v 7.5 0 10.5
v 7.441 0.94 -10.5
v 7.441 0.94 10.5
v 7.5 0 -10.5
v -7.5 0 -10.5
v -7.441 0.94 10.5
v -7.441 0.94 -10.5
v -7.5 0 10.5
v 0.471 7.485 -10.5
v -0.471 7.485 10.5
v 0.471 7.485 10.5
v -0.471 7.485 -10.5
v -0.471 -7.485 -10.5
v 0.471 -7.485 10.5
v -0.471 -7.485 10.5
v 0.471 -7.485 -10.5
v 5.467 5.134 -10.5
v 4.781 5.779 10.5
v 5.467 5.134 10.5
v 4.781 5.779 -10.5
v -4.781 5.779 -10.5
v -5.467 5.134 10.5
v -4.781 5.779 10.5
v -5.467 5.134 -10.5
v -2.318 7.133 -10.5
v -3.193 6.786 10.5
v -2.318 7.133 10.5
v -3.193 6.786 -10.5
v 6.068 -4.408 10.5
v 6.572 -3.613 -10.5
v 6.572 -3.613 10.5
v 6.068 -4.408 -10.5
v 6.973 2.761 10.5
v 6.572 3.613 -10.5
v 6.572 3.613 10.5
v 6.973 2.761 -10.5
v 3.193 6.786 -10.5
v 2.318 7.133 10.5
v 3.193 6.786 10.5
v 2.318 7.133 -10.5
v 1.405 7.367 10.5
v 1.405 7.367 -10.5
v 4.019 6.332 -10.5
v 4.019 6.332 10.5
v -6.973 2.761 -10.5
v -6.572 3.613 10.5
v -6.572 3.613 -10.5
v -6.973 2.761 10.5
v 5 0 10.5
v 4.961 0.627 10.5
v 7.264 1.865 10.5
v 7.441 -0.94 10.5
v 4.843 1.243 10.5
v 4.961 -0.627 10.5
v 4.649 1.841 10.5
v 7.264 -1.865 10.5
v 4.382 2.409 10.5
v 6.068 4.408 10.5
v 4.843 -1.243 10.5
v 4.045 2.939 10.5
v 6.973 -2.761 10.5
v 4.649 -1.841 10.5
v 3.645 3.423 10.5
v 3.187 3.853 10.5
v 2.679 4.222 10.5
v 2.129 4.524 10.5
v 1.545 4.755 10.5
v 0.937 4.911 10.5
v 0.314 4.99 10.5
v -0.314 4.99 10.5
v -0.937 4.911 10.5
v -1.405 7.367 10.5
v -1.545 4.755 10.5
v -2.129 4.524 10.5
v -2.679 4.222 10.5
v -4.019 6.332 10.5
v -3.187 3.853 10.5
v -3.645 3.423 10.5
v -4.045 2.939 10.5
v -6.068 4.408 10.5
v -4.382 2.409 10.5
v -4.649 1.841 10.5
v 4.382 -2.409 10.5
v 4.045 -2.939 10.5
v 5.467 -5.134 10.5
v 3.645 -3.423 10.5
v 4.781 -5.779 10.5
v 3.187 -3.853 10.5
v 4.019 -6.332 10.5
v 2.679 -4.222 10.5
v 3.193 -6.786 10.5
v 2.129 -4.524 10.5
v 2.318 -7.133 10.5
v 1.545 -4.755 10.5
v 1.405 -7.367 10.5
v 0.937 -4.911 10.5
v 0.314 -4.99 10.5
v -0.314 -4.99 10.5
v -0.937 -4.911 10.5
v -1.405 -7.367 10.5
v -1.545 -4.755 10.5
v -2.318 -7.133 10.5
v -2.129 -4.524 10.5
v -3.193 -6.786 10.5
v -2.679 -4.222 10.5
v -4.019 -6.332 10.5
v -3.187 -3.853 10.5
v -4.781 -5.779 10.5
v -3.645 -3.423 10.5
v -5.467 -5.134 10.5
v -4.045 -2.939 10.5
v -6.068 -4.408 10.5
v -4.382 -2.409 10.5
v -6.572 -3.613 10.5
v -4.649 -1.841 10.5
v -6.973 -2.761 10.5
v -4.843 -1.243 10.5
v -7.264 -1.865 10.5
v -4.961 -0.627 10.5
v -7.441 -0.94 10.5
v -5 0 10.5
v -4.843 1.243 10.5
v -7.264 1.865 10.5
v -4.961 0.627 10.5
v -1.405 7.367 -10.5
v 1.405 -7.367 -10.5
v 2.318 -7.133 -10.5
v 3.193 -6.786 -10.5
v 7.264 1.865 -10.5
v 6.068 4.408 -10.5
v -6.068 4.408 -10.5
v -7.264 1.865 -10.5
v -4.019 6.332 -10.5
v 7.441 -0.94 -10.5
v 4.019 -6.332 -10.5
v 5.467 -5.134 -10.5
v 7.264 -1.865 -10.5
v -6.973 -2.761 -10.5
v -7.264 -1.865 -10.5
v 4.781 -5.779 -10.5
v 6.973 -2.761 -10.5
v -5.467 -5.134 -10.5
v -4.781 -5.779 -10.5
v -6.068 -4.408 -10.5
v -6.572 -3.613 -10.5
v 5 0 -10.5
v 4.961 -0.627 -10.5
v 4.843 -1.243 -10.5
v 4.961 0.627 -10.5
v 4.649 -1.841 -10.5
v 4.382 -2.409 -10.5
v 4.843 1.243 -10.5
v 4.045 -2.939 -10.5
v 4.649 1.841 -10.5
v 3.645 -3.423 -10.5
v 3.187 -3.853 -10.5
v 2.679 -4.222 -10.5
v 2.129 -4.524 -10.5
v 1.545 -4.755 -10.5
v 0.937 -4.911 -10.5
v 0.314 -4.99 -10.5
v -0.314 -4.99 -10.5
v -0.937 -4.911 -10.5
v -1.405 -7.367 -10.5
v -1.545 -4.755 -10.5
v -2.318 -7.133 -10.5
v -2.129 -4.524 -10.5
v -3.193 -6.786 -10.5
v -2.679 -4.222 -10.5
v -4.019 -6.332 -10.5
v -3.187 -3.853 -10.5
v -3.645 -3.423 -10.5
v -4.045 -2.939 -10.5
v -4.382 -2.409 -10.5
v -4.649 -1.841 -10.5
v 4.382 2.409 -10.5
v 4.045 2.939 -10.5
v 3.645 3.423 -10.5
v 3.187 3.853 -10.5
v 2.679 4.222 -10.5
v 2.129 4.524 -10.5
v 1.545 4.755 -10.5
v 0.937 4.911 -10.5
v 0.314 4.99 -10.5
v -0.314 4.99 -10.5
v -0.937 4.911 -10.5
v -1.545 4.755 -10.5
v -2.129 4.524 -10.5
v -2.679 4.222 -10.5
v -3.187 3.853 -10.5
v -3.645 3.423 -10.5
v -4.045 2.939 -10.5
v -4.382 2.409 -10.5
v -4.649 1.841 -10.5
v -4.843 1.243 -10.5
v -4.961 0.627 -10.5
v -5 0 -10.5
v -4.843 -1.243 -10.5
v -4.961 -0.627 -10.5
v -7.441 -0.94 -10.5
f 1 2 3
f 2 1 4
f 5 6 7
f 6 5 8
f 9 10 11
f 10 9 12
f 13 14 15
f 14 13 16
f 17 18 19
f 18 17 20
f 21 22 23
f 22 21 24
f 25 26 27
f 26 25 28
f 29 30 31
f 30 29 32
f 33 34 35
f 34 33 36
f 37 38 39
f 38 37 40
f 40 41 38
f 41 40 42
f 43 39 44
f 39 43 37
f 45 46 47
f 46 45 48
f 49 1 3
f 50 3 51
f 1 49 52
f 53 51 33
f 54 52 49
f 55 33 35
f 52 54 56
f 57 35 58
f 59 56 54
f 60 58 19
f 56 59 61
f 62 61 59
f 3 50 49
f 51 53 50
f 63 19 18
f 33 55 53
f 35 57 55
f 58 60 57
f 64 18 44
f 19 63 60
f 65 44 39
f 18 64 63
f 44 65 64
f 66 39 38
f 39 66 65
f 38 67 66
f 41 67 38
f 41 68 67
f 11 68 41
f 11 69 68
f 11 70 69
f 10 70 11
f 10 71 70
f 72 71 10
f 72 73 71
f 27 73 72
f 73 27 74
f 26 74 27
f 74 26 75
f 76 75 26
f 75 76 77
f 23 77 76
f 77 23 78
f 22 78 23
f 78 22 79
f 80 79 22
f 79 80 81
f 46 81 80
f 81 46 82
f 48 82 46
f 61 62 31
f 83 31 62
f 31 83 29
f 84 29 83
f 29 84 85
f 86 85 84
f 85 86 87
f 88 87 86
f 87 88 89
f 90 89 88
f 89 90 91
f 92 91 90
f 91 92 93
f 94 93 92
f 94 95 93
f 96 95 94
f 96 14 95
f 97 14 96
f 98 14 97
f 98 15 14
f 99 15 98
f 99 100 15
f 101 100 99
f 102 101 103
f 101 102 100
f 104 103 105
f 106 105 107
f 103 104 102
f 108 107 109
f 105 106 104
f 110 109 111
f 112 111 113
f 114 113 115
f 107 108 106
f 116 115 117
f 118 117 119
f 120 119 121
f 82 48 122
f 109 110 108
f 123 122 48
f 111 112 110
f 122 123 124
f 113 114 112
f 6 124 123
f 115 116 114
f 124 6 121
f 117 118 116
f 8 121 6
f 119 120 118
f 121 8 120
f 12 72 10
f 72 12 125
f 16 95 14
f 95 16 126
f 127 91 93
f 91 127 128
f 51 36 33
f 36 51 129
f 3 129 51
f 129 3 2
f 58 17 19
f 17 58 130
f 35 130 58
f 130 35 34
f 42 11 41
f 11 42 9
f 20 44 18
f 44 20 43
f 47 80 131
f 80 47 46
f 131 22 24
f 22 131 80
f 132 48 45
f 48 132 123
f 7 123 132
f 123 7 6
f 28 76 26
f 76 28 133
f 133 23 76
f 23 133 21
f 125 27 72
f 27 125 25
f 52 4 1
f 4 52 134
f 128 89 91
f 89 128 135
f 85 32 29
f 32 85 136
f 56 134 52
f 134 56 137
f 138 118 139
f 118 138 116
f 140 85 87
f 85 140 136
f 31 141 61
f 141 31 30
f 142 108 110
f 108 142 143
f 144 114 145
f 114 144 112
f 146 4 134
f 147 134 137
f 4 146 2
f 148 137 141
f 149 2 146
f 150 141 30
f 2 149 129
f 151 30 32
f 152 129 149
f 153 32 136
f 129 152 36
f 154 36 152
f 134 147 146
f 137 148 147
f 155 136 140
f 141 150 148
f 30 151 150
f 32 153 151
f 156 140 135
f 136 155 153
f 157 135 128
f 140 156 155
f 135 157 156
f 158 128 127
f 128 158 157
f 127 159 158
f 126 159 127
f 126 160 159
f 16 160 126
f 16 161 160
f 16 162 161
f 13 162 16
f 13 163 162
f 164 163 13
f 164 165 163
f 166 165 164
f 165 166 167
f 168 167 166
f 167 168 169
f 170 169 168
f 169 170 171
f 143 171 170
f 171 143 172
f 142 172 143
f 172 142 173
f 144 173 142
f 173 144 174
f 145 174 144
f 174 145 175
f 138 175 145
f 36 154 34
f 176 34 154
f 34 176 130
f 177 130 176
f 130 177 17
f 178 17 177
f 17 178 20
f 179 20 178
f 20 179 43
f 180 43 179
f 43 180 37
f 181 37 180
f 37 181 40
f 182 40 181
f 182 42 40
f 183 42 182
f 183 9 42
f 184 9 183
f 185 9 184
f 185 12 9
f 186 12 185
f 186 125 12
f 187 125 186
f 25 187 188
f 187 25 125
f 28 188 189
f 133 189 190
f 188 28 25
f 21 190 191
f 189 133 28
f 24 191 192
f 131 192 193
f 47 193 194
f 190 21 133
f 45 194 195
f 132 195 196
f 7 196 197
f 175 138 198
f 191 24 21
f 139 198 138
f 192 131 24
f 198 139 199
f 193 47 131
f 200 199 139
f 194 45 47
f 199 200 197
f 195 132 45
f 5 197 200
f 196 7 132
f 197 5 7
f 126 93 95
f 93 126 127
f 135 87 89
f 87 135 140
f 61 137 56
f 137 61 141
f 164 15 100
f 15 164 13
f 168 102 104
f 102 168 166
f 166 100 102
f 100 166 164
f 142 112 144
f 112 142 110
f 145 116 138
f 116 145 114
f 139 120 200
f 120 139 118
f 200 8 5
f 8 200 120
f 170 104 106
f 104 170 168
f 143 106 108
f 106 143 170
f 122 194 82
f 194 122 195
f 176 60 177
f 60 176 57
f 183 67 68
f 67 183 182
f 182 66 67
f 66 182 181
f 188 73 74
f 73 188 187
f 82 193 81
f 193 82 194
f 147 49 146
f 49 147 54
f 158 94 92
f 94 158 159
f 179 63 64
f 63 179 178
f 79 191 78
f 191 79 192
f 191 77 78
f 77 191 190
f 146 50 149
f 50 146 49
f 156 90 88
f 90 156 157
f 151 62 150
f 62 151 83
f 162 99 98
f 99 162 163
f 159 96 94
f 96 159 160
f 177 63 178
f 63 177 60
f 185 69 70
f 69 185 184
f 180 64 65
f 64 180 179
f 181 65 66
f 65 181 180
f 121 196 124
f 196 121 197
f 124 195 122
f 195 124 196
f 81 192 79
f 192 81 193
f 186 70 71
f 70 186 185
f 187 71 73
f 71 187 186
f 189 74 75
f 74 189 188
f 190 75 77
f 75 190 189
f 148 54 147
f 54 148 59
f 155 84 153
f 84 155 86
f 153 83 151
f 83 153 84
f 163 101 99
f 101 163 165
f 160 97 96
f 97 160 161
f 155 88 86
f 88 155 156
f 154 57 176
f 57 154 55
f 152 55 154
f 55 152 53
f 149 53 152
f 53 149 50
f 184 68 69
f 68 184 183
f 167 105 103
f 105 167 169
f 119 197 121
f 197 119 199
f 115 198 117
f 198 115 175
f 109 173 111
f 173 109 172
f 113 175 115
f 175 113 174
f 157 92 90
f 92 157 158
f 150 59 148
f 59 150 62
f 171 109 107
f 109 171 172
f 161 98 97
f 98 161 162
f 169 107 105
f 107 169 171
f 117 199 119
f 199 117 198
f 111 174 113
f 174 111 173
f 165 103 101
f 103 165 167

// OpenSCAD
$fn = 50;


difference() {
	union() {
		translate(v = [0, 0, -10.5000000000]) {
			cylinder(h = 21, r = 7.5000000000);
		}
	}
	union() {
		translate(v = [0, 0, -100.0000000000]) {
			cylinder(h = 200, r = 5.0000000000);
		}
	}
}
